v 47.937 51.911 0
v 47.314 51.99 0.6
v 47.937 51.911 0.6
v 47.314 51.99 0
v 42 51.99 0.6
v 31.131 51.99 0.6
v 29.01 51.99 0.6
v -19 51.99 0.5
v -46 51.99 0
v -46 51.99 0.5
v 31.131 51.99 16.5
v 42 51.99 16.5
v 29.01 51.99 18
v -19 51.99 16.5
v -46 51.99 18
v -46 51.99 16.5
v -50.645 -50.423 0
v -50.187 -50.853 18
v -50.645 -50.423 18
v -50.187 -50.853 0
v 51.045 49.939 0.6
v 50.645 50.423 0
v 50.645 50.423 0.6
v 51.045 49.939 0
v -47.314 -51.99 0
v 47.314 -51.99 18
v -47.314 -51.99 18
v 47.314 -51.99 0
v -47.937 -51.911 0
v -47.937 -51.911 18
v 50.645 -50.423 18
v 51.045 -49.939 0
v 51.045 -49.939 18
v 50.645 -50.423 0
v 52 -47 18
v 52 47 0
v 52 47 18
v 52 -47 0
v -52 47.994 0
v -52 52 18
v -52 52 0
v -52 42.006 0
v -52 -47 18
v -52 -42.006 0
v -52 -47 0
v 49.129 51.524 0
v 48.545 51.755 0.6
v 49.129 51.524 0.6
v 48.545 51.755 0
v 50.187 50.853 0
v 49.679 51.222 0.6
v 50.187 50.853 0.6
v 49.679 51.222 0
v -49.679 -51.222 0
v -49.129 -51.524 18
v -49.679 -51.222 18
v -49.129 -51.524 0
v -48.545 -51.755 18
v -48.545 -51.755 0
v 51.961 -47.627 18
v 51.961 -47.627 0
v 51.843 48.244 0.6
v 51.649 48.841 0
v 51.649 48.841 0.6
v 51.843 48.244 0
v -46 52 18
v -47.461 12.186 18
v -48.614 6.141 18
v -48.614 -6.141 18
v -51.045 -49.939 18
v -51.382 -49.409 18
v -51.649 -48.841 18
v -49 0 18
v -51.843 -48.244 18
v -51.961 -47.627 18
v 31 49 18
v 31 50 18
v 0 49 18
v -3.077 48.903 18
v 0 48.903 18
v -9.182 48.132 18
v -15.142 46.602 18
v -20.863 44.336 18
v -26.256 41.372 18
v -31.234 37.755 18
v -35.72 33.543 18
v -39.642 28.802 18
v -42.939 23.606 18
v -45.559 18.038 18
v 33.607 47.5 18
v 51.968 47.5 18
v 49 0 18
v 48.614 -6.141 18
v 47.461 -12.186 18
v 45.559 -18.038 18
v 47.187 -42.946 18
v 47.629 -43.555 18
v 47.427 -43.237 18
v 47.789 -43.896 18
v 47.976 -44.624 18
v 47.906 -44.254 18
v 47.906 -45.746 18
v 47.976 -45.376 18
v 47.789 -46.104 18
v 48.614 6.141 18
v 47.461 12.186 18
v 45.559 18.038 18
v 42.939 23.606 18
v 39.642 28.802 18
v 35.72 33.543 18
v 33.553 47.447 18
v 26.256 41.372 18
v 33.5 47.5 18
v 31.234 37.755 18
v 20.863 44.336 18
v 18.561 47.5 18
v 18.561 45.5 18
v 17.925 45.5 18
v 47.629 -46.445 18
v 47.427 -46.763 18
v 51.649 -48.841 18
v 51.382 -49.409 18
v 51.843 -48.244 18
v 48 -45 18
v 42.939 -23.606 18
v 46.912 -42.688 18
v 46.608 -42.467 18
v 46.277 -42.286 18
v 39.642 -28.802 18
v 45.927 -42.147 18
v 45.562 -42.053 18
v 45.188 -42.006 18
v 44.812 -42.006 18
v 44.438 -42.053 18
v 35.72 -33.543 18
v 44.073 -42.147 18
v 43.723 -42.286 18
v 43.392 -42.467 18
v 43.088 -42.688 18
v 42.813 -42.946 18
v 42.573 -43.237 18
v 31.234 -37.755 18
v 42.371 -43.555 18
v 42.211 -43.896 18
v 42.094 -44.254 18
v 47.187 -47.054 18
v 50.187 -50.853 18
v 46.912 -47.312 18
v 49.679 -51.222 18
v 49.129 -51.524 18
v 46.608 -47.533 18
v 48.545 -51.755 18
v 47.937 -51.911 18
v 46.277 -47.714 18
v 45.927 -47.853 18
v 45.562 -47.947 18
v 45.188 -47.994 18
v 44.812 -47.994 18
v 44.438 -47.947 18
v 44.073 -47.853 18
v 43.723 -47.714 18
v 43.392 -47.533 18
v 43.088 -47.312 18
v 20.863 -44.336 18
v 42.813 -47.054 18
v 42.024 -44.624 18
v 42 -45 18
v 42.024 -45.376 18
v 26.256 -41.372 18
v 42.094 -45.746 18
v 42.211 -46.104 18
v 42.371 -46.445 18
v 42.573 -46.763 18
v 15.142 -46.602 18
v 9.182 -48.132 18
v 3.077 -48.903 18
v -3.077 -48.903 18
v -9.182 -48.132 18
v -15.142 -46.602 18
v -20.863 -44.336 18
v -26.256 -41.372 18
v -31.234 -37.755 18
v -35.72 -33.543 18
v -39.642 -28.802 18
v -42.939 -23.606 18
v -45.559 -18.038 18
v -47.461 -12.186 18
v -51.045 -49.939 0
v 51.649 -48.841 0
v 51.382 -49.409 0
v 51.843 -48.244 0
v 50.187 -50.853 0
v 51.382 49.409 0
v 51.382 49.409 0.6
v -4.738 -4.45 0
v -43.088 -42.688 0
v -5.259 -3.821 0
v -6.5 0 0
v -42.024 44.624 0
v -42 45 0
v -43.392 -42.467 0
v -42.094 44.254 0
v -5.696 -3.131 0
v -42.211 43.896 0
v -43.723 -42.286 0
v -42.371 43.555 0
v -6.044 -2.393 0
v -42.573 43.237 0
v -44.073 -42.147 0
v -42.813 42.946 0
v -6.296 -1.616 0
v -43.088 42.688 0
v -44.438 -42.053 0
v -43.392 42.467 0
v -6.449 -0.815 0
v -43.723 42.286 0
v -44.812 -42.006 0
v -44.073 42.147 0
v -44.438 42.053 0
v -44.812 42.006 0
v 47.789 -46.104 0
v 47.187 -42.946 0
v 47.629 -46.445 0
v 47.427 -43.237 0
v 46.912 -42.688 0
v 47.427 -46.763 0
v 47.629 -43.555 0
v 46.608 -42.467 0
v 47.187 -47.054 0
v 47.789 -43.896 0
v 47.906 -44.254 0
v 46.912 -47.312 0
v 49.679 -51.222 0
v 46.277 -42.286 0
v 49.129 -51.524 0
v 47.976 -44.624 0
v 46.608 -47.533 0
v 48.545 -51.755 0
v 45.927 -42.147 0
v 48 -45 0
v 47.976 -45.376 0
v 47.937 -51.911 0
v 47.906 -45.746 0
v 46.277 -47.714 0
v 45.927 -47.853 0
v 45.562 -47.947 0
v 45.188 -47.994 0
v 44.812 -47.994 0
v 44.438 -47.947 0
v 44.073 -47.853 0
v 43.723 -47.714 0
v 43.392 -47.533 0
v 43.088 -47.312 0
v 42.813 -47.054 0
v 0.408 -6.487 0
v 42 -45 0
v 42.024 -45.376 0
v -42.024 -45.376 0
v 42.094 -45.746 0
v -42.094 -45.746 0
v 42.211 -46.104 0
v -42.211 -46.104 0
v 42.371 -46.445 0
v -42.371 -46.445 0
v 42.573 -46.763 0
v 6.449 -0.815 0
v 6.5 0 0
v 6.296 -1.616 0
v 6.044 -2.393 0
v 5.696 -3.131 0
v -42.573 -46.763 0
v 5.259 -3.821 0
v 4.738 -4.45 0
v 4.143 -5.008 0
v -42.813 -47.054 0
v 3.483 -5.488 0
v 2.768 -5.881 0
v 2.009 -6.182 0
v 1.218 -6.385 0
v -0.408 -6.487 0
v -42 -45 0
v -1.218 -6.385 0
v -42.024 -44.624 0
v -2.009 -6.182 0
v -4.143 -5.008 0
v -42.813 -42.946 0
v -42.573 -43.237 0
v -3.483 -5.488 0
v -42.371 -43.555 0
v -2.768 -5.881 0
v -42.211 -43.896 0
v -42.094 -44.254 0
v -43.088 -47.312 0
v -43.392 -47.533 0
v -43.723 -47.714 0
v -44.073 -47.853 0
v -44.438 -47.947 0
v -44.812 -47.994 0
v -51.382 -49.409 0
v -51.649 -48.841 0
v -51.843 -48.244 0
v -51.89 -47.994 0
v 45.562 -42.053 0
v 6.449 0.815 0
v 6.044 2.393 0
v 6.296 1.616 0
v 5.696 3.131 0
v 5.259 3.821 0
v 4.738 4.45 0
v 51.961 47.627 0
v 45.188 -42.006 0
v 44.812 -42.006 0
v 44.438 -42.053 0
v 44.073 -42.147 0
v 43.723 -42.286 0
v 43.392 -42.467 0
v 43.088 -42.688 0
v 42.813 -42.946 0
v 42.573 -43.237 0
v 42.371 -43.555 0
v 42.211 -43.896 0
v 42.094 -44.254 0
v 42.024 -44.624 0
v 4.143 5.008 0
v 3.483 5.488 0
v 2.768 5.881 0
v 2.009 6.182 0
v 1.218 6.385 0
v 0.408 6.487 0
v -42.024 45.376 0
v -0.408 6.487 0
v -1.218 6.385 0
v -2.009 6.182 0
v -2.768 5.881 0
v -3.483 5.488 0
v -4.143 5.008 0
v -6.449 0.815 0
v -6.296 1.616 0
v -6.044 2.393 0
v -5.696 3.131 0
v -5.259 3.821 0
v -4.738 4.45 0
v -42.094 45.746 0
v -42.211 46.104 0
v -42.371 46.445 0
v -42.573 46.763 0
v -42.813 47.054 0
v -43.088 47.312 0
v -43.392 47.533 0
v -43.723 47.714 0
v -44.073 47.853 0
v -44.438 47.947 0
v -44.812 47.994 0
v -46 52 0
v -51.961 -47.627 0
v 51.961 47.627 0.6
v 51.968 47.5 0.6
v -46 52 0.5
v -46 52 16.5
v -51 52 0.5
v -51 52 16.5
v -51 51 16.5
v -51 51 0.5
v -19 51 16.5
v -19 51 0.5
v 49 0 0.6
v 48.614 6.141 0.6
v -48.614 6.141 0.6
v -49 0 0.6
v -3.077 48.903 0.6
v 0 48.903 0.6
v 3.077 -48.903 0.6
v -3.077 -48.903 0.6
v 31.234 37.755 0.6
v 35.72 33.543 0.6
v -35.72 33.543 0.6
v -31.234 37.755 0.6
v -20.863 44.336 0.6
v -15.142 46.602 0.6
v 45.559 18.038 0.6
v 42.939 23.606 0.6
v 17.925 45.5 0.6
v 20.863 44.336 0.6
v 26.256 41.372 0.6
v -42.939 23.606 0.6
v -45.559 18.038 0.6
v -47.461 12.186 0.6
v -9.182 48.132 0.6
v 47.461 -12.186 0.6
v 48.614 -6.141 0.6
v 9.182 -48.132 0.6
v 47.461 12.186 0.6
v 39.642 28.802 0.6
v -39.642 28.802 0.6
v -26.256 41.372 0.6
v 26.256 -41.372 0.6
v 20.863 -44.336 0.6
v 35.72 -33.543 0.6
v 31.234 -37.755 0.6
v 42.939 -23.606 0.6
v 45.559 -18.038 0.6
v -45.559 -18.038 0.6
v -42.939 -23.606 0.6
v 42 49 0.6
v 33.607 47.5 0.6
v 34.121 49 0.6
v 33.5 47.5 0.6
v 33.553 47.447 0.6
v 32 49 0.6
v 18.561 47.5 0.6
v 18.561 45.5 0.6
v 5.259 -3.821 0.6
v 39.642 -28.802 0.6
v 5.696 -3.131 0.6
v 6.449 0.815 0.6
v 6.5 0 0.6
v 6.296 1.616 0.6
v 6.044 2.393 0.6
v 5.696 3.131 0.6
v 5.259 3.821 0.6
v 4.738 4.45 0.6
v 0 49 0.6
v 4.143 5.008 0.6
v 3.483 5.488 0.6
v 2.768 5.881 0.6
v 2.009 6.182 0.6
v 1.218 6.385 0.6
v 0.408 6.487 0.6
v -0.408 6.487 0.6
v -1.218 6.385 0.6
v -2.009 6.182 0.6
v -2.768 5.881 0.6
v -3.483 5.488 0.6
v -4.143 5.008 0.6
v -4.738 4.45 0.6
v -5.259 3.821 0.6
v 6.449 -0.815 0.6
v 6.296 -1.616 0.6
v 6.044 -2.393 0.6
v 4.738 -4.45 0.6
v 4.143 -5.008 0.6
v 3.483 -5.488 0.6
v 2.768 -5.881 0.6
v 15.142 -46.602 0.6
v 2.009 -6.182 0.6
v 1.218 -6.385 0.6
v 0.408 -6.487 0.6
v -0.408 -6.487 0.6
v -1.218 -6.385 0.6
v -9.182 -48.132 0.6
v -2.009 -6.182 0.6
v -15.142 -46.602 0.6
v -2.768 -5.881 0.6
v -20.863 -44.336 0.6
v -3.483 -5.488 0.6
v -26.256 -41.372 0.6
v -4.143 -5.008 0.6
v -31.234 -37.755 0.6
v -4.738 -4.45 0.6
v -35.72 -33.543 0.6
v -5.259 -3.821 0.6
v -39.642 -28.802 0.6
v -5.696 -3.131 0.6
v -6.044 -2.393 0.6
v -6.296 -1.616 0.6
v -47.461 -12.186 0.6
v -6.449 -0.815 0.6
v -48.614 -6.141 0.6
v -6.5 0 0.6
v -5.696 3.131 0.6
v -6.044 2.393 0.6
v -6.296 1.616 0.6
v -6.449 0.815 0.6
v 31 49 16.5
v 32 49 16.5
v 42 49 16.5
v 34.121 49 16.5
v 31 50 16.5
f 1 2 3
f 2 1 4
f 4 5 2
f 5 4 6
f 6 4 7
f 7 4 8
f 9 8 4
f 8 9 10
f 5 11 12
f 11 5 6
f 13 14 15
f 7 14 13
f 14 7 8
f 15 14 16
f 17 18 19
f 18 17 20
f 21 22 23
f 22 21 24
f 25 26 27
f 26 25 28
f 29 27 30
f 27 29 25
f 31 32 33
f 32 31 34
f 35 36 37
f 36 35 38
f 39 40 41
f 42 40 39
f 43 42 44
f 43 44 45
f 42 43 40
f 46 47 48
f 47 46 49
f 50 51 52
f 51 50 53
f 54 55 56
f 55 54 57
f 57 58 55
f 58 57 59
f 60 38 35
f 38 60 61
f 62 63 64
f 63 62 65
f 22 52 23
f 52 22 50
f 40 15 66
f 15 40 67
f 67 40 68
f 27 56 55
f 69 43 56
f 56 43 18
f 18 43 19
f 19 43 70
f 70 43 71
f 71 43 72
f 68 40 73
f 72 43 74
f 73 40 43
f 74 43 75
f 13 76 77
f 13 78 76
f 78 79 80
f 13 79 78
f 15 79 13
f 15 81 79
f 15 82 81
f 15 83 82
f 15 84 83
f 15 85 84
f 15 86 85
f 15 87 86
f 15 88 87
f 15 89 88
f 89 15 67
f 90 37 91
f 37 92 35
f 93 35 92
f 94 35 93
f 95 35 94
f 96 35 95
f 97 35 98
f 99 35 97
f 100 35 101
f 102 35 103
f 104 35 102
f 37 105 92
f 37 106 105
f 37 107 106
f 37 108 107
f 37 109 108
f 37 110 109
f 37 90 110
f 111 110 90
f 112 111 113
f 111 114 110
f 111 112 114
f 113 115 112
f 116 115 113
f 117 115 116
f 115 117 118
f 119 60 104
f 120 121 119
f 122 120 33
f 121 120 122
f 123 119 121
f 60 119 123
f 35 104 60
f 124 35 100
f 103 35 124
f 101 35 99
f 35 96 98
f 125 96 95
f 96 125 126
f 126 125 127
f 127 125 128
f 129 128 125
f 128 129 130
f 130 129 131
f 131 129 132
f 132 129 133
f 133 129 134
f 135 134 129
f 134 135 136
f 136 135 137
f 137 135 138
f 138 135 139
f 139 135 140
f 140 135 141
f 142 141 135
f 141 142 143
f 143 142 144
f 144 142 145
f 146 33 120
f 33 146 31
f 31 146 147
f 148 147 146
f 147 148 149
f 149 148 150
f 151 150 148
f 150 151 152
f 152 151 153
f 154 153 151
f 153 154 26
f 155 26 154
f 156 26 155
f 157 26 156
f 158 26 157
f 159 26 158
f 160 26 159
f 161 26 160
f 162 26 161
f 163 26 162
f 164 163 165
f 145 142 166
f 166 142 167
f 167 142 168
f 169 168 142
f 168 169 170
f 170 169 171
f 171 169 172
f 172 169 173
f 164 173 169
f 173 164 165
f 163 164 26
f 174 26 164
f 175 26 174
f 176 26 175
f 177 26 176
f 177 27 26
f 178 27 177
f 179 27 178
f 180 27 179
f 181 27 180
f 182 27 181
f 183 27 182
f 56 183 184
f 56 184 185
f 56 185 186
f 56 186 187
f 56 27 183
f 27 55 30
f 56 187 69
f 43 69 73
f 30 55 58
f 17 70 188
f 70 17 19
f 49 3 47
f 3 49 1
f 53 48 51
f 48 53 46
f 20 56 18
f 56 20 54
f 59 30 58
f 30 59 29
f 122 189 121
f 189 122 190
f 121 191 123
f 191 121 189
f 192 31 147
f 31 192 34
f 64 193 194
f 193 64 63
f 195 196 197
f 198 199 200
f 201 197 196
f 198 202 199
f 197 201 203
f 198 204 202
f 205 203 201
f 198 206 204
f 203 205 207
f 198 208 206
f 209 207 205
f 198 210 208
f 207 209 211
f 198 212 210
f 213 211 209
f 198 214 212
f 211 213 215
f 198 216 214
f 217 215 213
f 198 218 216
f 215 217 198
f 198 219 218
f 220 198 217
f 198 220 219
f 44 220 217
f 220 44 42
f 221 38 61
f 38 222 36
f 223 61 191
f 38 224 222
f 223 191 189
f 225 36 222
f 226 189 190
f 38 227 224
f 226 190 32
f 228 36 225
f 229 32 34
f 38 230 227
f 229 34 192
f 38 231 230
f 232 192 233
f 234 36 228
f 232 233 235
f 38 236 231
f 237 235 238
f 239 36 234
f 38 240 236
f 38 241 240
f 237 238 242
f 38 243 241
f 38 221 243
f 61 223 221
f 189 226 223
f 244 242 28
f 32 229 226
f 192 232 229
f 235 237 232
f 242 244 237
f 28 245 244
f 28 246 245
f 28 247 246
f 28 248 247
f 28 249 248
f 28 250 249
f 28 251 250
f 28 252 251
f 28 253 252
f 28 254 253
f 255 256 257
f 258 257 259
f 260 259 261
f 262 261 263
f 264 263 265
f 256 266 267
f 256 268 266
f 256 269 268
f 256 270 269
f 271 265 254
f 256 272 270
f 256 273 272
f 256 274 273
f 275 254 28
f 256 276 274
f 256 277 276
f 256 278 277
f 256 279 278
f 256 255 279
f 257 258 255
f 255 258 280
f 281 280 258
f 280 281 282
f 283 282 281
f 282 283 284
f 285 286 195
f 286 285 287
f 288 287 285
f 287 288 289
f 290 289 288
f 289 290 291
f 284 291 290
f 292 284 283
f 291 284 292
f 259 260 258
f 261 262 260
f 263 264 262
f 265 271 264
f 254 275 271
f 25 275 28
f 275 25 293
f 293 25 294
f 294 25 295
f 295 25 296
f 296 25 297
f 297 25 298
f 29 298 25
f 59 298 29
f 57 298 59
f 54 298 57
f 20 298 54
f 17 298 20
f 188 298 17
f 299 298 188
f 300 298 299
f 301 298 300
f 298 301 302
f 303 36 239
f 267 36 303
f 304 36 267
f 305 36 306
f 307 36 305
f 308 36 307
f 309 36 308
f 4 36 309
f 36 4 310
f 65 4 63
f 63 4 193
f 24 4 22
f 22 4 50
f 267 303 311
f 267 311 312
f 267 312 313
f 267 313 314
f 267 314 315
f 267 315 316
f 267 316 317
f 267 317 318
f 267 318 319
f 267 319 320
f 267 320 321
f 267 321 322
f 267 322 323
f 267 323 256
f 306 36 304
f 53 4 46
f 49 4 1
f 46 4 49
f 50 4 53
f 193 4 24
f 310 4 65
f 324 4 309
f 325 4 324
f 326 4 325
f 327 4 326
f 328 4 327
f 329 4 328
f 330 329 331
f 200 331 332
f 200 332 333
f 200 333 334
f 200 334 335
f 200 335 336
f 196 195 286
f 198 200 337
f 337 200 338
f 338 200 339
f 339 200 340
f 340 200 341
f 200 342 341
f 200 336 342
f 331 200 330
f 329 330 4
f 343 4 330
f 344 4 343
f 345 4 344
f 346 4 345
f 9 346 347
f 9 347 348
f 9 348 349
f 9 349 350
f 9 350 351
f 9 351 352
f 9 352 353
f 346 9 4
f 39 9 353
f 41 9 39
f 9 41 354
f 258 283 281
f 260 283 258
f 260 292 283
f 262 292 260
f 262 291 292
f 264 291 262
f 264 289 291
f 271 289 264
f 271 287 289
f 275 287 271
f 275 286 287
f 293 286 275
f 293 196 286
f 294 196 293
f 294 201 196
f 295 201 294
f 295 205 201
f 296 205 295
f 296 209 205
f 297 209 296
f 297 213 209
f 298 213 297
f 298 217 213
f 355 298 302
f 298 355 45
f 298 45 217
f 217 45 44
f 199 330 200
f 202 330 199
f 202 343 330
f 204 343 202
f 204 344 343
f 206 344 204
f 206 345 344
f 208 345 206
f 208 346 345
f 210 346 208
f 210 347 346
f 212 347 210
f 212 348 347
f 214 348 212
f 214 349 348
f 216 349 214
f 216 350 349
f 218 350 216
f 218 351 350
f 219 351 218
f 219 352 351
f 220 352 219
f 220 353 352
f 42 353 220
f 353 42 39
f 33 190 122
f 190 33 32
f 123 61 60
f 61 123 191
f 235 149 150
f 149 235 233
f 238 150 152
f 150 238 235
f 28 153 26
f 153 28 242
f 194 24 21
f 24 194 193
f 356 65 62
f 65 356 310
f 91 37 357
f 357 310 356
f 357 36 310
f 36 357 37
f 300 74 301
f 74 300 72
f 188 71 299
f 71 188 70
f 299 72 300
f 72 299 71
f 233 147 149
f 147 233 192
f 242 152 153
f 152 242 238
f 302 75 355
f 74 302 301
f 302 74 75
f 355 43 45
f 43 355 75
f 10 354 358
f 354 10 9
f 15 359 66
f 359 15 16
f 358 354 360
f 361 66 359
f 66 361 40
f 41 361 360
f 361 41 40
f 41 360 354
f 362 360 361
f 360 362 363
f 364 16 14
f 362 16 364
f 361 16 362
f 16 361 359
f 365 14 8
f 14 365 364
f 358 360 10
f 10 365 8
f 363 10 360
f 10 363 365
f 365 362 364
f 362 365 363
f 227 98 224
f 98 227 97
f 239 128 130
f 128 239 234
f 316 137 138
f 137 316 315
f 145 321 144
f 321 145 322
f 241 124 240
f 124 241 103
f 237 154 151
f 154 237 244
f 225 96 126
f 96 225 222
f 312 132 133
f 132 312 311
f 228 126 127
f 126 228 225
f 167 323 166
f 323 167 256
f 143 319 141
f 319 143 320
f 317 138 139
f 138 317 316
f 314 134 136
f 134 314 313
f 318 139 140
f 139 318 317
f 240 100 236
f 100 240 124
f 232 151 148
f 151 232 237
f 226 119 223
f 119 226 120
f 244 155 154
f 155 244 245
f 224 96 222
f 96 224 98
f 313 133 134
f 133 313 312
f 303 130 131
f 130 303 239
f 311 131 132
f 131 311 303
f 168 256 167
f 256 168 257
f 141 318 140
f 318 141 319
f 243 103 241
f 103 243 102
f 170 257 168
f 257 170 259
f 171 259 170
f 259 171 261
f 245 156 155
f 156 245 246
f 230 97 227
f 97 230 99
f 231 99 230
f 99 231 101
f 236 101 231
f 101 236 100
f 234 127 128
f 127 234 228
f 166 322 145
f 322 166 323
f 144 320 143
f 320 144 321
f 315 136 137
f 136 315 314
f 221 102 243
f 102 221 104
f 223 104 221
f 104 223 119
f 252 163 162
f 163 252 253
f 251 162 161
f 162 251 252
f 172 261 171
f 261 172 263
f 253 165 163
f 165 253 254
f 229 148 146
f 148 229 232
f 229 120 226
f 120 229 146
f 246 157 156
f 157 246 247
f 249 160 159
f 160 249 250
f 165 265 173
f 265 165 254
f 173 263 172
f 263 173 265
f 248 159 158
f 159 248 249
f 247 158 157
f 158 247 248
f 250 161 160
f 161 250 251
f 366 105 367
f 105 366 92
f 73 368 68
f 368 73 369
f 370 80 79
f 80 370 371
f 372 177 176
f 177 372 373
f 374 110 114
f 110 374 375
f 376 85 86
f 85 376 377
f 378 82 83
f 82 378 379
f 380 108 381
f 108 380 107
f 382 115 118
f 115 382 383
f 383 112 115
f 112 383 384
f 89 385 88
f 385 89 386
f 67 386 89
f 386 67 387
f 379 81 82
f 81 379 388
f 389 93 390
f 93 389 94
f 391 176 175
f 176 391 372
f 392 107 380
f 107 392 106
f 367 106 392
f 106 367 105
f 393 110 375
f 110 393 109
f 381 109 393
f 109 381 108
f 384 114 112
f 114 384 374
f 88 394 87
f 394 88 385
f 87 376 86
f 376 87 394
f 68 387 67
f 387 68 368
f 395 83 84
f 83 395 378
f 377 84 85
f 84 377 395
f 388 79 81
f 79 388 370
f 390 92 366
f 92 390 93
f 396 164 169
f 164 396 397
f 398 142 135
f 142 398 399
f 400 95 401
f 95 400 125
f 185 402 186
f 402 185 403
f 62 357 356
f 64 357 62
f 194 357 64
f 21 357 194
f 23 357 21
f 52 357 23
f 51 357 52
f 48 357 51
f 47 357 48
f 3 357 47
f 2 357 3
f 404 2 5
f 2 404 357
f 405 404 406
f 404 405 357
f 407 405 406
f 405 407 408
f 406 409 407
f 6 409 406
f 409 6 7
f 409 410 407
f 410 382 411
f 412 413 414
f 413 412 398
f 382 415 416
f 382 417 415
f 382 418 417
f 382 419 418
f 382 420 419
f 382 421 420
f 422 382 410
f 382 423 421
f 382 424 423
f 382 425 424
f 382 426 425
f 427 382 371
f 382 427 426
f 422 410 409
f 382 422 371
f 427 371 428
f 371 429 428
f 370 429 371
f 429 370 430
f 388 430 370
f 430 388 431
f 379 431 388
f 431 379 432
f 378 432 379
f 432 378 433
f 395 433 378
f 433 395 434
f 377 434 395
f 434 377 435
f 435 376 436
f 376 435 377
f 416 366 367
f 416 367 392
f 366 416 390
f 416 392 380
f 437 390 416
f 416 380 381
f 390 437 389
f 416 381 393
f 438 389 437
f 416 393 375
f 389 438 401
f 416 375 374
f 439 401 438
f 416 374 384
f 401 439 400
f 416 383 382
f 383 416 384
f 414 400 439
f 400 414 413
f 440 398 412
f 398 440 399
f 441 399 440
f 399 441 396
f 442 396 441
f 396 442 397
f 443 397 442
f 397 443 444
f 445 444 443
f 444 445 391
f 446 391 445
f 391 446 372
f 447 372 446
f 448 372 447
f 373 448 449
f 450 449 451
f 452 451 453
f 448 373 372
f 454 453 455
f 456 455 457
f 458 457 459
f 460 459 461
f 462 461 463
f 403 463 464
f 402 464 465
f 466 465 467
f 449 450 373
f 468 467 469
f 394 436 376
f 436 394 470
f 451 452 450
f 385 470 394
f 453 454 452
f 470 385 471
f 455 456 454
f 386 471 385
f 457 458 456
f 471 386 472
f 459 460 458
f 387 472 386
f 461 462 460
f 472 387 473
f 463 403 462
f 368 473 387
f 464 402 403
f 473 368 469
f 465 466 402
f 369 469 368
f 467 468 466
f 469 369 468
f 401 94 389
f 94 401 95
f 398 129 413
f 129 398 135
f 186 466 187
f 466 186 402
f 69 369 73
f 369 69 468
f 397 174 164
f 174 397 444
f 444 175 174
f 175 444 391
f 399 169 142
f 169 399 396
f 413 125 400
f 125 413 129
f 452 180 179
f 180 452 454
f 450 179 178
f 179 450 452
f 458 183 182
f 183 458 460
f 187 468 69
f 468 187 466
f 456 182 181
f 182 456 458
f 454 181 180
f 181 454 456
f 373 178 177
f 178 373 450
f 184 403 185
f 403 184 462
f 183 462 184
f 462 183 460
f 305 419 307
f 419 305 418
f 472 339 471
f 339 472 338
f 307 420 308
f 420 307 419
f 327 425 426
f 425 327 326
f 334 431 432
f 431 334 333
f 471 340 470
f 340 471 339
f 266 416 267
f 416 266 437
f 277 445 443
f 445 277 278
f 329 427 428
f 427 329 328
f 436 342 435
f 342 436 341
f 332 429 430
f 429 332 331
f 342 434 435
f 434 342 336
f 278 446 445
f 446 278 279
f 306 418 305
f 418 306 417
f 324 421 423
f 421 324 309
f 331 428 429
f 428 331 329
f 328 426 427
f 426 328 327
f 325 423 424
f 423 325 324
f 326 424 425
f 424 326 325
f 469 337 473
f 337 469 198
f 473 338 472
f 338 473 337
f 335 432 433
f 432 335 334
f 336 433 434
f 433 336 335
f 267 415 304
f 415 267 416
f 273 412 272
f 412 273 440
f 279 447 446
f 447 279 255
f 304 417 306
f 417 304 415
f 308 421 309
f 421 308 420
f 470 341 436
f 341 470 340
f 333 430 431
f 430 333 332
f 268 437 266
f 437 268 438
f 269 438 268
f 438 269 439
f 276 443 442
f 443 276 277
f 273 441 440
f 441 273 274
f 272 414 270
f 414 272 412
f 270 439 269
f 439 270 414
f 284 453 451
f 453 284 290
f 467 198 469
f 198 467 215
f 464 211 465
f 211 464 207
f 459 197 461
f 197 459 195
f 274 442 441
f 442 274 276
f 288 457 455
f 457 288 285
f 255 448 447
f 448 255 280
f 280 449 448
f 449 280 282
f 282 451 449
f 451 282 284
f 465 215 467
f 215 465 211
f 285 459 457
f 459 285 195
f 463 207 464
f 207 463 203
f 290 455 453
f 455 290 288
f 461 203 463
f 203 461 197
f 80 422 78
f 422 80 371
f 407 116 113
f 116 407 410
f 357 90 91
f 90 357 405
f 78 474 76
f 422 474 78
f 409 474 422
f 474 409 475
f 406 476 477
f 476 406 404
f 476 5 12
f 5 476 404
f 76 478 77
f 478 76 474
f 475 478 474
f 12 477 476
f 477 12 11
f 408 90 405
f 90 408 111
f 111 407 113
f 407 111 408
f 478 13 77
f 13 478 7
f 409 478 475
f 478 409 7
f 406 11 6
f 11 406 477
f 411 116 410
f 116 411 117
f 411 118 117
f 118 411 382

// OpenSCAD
$fn = 50;


difference() {
	union() {
		hull() {
			translate(v = [-47.0000000000, 47.0000000000, 0]) {
				cylinder(h = 18, r = 5);
			}
			translate(v = [47.0000000000, 47.0000000000, 0]) {
				cylinder(h = 18, r = 5);
			}
			translate(v = [-47.0000000000, -47.0000000000, 0]) {
				cylinder(h = 18, r = 5);
			}
			translate(v = [47.0000000000, -47.0000000000, 0]) {
				cylinder(h = 18, r = 5);
			}
		}
		translate(v = [-52.0000000000, 46.0000000000, 0]) {
			cube(size = [6, 6, 18]);
		}
	}
	union() {
		translate(v = [-52.5000000000, -45.0000000000, -250.0000000000]) {
			rotate(a = [0, 0, 0]) {
				difference() {
					union() {
						hull() {
							translate(v = [7.5000000000, 0, 0]) {
								cylinder(h = 250, r = 3.0000000000, r1 = 3.0000000000, r2 = 3.0000000000);
							}
							translate(v = [-7.5000000000, 0, 0]) {
								cylinder(h = 250, r = 3.0000000000, r1 = 3.0000000000, r2 = 3.0000000000);
							}
						}
					}
					union();
				}
			}
		}
		translate(v = [-52.5000000000, 45.0000000000, -250.0000000000]) {
			rotate(a = [0, 0, 0]) {
				difference() {
					union() {
						hull() {
							translate(v = [7.5000000000, 0, 0]) {
								cylinder(h = 250, r = 3.0000000000, r1 = 3.0000000000, r2 = 3.0000000000);
							}
							translate(v = [-7.5000000000, 0, 0]) {
								cylinder(h = 250, r = 3.0000000000, r1 = 3.0000000000, r2 = 3.0000000000);
							}
						}
					}
					union();
				}
			}
		}
		translate(v = [-51.0000000000, 51.0000000000, 0.5000000000]) {
			cube(size = [32, 1, 16]);
		}
		translate(v = [45.0000000000, -45.0000000000, -50.0000000000]) {
			cylinder(h = 100, r = 3.0000000000);
		}
		translate(v = [0, 0, 0.6000000000]) {
			cylinder(h = 20.4000000000, r = 49.0000000000);
		}
		translate(v = [0, 0, -9.0000000000]) {
			cylinder(h = 18, r = 6.5000000000);
		}
		translate(v = [0.0000000000, 47.5000000000, 0.6000000000]) {
			cube(size = [52.0000000000, 1.5000000000, 20.4000000000]);
		}
		translate(v = [42.0000000000, 47.5000000000, 0.6000000000]) {
			cube(size = [10, 4.5000000000, 20.4000000000]);
		}
		translate(v = [31.0000000000, 47.5000000000, 16.5000000000]) {
			cube(size = [21, 4.5000000000, 1.5000000000]);
		}
		translate(v = [28.2500000000, 52.7500000000, 0.6000000000]) {
			rotate(a = [0, 0, -45]) {
				cube(size = [7.5000000000, 1.5000000000, 20.4000000000]);
			}
		}
		translate(v = [11.0610000000, 45.5000000000, 0.6000000000]) {
			cube(size = [7.5000000000, 2, 17.4000000000]);
		}
	}
}
